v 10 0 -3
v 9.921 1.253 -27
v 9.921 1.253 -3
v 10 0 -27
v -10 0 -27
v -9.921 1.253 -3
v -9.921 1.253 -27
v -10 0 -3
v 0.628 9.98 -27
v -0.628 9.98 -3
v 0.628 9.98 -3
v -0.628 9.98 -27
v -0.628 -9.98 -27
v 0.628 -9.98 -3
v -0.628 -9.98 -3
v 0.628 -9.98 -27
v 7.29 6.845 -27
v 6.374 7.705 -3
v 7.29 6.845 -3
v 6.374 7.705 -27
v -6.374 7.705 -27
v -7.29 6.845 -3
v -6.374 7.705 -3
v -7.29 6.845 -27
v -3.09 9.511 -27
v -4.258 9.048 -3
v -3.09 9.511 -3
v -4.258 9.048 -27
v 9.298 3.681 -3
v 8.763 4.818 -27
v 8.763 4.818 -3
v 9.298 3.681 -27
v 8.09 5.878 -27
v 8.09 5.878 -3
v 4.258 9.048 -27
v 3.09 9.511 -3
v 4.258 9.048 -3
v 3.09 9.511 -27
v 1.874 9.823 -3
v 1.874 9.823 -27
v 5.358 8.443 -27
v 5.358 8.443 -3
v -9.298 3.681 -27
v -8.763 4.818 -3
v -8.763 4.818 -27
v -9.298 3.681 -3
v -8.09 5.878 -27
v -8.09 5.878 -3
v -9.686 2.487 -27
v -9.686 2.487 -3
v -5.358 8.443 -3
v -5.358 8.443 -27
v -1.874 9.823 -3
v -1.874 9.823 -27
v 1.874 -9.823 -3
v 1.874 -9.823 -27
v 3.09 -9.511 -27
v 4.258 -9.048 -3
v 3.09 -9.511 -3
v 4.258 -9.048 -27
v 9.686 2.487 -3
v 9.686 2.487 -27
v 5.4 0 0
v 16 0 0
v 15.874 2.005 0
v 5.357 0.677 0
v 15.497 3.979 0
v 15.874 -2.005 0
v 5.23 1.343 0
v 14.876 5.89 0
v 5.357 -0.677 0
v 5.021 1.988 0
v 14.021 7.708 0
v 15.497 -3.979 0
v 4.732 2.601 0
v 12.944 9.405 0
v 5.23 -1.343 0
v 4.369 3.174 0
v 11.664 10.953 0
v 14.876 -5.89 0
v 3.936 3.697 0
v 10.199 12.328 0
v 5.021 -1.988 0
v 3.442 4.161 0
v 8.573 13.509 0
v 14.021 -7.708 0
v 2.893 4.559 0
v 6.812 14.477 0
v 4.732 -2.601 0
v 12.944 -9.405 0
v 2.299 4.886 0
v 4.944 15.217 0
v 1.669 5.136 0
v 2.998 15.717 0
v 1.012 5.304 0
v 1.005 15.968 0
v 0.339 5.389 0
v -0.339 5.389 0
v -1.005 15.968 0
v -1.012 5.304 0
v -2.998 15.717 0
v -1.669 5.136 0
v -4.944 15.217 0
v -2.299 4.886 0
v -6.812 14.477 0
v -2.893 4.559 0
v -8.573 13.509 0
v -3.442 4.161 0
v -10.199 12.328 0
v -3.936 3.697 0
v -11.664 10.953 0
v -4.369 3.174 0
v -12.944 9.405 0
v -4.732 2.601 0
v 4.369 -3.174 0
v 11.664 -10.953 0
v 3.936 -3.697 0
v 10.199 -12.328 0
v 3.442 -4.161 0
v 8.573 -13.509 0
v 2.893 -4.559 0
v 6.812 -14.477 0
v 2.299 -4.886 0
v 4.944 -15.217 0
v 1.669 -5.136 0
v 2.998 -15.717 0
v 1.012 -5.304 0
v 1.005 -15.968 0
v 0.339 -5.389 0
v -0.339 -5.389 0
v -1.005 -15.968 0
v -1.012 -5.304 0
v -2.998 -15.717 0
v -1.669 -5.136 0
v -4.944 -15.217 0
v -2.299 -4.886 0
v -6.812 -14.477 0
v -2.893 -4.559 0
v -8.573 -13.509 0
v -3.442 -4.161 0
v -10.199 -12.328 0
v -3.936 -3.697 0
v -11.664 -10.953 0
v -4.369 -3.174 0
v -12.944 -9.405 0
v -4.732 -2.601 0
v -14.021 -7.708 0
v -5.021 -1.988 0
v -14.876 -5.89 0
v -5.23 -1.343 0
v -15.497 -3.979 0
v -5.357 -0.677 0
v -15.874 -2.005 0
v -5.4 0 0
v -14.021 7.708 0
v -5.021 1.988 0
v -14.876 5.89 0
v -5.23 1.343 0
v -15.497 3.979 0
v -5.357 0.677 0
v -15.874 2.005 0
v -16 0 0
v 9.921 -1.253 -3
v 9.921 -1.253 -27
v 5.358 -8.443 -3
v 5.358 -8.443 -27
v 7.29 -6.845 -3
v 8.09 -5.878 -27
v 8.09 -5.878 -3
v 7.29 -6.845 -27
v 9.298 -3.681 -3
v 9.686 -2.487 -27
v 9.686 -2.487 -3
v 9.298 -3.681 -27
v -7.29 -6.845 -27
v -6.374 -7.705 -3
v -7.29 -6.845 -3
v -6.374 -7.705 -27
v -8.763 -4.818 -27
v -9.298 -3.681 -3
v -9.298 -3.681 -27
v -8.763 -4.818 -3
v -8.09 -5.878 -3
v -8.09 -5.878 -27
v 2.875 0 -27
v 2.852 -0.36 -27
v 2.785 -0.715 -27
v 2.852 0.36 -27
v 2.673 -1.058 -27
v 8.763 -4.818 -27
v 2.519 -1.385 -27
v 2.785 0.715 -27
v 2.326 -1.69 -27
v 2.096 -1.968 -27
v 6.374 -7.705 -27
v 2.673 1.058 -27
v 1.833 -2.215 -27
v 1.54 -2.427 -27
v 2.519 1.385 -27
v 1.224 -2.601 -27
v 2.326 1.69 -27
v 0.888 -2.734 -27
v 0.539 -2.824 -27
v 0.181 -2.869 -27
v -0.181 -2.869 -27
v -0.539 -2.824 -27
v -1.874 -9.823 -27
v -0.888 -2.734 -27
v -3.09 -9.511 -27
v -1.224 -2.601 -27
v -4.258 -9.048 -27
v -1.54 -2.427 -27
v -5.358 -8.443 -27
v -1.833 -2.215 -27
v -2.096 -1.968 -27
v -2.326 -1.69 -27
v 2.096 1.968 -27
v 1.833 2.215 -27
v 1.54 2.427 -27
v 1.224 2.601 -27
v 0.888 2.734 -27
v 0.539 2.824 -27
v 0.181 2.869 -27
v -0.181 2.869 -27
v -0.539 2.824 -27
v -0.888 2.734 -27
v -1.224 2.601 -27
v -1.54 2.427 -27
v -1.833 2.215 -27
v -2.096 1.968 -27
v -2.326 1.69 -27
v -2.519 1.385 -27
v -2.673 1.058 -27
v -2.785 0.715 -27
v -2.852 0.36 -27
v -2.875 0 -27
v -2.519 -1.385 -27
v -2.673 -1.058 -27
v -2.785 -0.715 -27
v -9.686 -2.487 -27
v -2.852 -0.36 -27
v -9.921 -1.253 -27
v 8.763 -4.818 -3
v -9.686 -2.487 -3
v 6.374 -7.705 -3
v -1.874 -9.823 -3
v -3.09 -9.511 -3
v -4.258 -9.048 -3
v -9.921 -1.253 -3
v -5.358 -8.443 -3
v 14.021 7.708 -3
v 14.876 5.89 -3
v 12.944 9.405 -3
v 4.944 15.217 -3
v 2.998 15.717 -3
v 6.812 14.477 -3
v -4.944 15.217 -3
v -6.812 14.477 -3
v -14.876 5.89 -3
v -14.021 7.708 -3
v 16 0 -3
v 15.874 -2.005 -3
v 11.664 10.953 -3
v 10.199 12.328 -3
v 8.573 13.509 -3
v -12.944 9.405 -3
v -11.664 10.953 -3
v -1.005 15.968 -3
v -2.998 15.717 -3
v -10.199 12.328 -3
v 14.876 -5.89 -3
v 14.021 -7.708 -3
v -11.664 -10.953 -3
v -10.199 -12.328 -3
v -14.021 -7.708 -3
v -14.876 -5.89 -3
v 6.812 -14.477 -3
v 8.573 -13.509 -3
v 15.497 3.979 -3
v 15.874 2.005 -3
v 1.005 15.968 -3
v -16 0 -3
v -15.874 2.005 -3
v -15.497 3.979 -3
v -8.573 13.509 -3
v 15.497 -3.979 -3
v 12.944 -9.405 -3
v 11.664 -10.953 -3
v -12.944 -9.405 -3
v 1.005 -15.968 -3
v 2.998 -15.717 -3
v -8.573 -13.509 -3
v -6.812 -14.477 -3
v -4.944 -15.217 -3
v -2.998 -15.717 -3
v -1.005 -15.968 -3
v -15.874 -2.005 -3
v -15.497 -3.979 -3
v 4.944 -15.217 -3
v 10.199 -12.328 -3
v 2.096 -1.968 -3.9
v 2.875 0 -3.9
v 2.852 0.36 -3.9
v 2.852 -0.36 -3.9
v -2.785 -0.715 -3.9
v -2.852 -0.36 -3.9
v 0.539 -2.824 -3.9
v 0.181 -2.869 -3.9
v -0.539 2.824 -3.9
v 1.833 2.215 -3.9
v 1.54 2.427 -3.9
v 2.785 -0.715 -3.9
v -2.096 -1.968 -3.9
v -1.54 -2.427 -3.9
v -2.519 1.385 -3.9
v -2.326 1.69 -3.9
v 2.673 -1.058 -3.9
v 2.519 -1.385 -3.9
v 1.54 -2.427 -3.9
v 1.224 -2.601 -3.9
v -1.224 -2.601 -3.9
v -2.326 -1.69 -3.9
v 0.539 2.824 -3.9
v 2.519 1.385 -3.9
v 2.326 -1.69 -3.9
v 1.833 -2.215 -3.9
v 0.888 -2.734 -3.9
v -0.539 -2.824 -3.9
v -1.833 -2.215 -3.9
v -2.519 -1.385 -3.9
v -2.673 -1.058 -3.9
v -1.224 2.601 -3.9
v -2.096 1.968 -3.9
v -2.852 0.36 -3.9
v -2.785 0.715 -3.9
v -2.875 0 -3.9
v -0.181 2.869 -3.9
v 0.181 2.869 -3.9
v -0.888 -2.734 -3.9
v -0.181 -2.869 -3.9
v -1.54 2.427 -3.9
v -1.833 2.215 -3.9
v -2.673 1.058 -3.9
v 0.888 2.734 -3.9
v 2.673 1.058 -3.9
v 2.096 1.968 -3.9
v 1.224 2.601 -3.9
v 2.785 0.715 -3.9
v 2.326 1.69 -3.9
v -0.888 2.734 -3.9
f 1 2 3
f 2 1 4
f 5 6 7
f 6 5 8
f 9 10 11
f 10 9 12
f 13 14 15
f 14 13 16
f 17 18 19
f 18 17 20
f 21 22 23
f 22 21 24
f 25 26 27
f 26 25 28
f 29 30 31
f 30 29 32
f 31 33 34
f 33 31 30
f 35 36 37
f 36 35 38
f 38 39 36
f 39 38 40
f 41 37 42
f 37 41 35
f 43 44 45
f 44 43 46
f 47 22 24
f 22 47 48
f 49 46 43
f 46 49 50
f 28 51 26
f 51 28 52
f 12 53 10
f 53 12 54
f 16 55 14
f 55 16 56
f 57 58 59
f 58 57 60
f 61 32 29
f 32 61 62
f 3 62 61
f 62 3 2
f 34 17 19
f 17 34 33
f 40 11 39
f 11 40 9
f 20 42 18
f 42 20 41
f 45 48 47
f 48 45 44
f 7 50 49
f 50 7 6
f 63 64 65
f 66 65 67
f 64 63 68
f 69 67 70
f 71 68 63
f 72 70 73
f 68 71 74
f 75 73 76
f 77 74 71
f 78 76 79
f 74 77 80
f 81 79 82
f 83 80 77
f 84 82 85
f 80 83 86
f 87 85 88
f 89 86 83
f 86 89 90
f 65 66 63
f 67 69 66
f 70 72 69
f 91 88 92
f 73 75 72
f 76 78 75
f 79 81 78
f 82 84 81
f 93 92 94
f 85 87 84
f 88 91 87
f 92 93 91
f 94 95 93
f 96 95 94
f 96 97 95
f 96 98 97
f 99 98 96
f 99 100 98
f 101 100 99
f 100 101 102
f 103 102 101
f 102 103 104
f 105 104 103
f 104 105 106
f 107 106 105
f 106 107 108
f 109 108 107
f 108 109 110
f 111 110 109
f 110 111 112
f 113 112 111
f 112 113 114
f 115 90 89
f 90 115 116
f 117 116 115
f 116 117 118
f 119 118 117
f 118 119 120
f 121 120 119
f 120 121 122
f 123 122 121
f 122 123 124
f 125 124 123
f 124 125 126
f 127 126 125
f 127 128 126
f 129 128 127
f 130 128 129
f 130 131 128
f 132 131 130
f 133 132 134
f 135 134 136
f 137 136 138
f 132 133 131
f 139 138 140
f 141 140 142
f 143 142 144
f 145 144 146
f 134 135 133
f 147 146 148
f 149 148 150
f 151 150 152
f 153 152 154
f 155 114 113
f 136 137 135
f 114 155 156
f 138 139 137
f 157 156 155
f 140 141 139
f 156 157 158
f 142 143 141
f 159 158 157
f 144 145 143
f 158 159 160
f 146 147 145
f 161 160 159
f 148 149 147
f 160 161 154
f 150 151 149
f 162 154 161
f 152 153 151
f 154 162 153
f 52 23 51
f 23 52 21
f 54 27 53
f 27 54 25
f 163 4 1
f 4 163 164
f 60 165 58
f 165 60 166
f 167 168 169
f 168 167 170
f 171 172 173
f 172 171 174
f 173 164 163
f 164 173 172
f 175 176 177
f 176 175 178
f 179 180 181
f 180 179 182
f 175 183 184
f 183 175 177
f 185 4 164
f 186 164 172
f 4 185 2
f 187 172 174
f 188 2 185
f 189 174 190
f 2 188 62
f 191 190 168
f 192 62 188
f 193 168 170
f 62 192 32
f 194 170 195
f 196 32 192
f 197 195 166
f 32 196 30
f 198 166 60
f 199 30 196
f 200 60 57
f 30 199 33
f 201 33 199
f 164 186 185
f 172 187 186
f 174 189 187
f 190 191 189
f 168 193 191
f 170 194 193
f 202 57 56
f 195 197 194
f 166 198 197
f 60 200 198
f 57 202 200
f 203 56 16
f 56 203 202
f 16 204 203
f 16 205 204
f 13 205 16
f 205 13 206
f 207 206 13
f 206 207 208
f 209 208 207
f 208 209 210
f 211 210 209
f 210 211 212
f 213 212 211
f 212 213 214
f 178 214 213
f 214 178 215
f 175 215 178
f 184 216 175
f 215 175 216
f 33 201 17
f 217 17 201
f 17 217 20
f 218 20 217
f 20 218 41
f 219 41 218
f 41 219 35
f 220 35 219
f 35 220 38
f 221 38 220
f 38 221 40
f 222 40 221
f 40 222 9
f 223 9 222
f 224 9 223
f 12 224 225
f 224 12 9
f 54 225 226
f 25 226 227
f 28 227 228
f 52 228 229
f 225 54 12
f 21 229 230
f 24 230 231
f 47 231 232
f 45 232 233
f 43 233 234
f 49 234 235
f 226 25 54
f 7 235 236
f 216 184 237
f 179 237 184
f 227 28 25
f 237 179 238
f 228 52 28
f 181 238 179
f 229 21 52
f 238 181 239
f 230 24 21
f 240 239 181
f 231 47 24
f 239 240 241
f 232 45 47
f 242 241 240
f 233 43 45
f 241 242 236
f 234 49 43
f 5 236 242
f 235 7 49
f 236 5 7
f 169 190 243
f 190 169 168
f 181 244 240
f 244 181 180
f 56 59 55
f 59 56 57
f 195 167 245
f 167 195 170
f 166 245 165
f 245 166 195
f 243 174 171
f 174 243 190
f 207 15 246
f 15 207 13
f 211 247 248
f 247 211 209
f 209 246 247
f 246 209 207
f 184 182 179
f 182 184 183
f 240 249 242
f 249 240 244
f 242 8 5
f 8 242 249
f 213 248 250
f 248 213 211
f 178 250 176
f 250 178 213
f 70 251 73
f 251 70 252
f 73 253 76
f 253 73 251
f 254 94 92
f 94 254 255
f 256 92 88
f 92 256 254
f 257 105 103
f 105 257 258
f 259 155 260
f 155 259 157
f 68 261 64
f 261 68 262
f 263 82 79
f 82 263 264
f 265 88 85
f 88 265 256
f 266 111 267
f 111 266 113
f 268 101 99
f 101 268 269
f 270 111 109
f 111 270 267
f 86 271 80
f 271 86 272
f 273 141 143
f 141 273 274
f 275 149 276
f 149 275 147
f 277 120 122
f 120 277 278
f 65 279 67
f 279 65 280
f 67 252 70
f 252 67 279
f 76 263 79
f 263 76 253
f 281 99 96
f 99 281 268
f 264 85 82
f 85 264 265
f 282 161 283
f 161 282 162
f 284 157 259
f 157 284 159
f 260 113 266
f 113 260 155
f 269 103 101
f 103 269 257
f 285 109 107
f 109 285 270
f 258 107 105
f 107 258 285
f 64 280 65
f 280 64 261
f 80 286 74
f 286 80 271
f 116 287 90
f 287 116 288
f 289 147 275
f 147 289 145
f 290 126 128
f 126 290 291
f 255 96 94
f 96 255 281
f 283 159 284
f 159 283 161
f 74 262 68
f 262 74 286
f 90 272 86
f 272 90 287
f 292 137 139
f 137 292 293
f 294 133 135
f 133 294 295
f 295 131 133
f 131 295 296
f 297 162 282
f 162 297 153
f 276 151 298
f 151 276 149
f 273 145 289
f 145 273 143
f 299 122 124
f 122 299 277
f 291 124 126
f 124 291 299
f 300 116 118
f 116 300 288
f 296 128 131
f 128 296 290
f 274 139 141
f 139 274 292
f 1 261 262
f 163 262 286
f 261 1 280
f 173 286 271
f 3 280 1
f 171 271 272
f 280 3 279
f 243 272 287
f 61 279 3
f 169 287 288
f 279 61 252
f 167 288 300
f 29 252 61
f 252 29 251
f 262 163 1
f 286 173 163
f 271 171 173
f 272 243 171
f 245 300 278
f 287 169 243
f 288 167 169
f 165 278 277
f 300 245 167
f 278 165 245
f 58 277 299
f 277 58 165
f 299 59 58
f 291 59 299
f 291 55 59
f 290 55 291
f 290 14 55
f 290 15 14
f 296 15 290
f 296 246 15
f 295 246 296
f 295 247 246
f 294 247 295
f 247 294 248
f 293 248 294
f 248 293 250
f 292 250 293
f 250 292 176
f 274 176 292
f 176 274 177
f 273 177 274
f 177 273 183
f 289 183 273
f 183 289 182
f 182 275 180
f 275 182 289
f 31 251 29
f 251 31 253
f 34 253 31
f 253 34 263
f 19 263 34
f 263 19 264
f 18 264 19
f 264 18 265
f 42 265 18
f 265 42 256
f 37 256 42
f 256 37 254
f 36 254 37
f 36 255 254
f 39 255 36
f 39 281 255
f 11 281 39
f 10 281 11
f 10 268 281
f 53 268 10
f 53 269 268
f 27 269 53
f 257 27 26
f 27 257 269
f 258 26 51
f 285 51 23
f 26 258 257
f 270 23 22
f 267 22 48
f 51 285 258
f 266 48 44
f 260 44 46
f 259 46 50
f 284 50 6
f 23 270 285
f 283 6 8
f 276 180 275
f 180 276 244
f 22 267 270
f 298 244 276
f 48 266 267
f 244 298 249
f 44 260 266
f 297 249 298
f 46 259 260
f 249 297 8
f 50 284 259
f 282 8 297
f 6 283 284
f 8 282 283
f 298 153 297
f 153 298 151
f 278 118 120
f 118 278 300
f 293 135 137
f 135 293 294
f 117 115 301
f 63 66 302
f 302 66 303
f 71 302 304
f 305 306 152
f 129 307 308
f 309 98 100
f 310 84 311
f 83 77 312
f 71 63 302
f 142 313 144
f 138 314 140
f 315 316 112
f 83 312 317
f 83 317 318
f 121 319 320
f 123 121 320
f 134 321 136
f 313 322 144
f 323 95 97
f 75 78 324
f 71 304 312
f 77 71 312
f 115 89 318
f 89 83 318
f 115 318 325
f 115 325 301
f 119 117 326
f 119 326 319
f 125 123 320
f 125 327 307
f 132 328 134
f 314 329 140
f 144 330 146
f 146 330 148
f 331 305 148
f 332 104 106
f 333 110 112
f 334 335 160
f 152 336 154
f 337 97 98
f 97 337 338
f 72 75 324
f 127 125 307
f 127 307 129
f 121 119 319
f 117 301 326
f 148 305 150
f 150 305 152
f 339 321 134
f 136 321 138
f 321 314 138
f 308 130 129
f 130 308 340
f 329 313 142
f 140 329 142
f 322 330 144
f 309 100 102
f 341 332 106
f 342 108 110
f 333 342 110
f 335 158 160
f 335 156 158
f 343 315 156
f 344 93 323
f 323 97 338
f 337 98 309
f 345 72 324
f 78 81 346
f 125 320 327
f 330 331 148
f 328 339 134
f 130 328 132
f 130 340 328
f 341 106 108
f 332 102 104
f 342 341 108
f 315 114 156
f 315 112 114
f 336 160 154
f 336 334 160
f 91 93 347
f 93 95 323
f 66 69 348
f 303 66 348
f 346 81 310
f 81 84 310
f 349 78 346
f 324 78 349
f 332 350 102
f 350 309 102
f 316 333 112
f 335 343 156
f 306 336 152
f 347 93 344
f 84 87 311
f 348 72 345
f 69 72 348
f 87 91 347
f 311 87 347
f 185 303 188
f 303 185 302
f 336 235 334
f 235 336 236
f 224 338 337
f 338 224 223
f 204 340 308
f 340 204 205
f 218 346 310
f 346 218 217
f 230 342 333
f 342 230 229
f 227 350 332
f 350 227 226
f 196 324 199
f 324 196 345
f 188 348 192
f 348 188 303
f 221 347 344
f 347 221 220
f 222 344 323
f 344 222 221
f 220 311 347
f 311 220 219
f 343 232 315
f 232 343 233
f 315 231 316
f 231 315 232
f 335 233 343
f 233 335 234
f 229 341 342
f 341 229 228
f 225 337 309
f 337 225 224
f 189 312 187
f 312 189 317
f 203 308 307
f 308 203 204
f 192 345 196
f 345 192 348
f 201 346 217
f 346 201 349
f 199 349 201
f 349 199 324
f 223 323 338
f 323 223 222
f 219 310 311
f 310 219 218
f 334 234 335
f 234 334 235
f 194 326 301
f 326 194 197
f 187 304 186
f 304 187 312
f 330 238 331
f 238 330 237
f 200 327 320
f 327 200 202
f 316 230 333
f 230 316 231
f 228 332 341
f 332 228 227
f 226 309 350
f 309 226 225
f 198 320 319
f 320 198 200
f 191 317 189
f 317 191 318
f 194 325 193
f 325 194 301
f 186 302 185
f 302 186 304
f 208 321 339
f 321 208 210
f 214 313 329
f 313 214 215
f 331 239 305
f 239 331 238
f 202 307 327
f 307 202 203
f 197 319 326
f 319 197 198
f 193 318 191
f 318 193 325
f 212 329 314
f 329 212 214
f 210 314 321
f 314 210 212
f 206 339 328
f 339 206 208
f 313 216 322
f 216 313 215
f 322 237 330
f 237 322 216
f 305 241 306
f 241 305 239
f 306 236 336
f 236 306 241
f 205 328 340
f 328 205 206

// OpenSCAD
$fn = 50;


difference() {
	union() {
		translate(v = [0, 0, -27.0000000000]) {
			cylinder(h = 27, r = 10.0000000000);
		}
		translate(v = [0, 0, -3.0000000000]) {
			cylinder(h = 3, r = 16.0000000000);
		}
	}
	union() {
		translate(v = [0, 0, 0]) {
			rotate(a = [0, 0, 0]) {
				difference() {
					union() {
						#translate(v = [0, 0, -27.0000000000]) {
							cylinder(h = 27, r = 2.6000000000);
						}
						#translate(v = [0, 0, -3.9000000000]) {
							cylinder(h = 3.9000000000, r1 = 2.8750000000, r2 = 5.4000000000);
						}
						#translate(v = [0, 0, -27.0000000000]) {
							cylinder(h = 27, r = 2.8750000000);
						}
						#translate(v = [0, 0, -27.0000000000]) {
							cylinder(h = 27, r = 2.6000000000);
						}
					}
					union();
				}
			}
		}
	}
}
